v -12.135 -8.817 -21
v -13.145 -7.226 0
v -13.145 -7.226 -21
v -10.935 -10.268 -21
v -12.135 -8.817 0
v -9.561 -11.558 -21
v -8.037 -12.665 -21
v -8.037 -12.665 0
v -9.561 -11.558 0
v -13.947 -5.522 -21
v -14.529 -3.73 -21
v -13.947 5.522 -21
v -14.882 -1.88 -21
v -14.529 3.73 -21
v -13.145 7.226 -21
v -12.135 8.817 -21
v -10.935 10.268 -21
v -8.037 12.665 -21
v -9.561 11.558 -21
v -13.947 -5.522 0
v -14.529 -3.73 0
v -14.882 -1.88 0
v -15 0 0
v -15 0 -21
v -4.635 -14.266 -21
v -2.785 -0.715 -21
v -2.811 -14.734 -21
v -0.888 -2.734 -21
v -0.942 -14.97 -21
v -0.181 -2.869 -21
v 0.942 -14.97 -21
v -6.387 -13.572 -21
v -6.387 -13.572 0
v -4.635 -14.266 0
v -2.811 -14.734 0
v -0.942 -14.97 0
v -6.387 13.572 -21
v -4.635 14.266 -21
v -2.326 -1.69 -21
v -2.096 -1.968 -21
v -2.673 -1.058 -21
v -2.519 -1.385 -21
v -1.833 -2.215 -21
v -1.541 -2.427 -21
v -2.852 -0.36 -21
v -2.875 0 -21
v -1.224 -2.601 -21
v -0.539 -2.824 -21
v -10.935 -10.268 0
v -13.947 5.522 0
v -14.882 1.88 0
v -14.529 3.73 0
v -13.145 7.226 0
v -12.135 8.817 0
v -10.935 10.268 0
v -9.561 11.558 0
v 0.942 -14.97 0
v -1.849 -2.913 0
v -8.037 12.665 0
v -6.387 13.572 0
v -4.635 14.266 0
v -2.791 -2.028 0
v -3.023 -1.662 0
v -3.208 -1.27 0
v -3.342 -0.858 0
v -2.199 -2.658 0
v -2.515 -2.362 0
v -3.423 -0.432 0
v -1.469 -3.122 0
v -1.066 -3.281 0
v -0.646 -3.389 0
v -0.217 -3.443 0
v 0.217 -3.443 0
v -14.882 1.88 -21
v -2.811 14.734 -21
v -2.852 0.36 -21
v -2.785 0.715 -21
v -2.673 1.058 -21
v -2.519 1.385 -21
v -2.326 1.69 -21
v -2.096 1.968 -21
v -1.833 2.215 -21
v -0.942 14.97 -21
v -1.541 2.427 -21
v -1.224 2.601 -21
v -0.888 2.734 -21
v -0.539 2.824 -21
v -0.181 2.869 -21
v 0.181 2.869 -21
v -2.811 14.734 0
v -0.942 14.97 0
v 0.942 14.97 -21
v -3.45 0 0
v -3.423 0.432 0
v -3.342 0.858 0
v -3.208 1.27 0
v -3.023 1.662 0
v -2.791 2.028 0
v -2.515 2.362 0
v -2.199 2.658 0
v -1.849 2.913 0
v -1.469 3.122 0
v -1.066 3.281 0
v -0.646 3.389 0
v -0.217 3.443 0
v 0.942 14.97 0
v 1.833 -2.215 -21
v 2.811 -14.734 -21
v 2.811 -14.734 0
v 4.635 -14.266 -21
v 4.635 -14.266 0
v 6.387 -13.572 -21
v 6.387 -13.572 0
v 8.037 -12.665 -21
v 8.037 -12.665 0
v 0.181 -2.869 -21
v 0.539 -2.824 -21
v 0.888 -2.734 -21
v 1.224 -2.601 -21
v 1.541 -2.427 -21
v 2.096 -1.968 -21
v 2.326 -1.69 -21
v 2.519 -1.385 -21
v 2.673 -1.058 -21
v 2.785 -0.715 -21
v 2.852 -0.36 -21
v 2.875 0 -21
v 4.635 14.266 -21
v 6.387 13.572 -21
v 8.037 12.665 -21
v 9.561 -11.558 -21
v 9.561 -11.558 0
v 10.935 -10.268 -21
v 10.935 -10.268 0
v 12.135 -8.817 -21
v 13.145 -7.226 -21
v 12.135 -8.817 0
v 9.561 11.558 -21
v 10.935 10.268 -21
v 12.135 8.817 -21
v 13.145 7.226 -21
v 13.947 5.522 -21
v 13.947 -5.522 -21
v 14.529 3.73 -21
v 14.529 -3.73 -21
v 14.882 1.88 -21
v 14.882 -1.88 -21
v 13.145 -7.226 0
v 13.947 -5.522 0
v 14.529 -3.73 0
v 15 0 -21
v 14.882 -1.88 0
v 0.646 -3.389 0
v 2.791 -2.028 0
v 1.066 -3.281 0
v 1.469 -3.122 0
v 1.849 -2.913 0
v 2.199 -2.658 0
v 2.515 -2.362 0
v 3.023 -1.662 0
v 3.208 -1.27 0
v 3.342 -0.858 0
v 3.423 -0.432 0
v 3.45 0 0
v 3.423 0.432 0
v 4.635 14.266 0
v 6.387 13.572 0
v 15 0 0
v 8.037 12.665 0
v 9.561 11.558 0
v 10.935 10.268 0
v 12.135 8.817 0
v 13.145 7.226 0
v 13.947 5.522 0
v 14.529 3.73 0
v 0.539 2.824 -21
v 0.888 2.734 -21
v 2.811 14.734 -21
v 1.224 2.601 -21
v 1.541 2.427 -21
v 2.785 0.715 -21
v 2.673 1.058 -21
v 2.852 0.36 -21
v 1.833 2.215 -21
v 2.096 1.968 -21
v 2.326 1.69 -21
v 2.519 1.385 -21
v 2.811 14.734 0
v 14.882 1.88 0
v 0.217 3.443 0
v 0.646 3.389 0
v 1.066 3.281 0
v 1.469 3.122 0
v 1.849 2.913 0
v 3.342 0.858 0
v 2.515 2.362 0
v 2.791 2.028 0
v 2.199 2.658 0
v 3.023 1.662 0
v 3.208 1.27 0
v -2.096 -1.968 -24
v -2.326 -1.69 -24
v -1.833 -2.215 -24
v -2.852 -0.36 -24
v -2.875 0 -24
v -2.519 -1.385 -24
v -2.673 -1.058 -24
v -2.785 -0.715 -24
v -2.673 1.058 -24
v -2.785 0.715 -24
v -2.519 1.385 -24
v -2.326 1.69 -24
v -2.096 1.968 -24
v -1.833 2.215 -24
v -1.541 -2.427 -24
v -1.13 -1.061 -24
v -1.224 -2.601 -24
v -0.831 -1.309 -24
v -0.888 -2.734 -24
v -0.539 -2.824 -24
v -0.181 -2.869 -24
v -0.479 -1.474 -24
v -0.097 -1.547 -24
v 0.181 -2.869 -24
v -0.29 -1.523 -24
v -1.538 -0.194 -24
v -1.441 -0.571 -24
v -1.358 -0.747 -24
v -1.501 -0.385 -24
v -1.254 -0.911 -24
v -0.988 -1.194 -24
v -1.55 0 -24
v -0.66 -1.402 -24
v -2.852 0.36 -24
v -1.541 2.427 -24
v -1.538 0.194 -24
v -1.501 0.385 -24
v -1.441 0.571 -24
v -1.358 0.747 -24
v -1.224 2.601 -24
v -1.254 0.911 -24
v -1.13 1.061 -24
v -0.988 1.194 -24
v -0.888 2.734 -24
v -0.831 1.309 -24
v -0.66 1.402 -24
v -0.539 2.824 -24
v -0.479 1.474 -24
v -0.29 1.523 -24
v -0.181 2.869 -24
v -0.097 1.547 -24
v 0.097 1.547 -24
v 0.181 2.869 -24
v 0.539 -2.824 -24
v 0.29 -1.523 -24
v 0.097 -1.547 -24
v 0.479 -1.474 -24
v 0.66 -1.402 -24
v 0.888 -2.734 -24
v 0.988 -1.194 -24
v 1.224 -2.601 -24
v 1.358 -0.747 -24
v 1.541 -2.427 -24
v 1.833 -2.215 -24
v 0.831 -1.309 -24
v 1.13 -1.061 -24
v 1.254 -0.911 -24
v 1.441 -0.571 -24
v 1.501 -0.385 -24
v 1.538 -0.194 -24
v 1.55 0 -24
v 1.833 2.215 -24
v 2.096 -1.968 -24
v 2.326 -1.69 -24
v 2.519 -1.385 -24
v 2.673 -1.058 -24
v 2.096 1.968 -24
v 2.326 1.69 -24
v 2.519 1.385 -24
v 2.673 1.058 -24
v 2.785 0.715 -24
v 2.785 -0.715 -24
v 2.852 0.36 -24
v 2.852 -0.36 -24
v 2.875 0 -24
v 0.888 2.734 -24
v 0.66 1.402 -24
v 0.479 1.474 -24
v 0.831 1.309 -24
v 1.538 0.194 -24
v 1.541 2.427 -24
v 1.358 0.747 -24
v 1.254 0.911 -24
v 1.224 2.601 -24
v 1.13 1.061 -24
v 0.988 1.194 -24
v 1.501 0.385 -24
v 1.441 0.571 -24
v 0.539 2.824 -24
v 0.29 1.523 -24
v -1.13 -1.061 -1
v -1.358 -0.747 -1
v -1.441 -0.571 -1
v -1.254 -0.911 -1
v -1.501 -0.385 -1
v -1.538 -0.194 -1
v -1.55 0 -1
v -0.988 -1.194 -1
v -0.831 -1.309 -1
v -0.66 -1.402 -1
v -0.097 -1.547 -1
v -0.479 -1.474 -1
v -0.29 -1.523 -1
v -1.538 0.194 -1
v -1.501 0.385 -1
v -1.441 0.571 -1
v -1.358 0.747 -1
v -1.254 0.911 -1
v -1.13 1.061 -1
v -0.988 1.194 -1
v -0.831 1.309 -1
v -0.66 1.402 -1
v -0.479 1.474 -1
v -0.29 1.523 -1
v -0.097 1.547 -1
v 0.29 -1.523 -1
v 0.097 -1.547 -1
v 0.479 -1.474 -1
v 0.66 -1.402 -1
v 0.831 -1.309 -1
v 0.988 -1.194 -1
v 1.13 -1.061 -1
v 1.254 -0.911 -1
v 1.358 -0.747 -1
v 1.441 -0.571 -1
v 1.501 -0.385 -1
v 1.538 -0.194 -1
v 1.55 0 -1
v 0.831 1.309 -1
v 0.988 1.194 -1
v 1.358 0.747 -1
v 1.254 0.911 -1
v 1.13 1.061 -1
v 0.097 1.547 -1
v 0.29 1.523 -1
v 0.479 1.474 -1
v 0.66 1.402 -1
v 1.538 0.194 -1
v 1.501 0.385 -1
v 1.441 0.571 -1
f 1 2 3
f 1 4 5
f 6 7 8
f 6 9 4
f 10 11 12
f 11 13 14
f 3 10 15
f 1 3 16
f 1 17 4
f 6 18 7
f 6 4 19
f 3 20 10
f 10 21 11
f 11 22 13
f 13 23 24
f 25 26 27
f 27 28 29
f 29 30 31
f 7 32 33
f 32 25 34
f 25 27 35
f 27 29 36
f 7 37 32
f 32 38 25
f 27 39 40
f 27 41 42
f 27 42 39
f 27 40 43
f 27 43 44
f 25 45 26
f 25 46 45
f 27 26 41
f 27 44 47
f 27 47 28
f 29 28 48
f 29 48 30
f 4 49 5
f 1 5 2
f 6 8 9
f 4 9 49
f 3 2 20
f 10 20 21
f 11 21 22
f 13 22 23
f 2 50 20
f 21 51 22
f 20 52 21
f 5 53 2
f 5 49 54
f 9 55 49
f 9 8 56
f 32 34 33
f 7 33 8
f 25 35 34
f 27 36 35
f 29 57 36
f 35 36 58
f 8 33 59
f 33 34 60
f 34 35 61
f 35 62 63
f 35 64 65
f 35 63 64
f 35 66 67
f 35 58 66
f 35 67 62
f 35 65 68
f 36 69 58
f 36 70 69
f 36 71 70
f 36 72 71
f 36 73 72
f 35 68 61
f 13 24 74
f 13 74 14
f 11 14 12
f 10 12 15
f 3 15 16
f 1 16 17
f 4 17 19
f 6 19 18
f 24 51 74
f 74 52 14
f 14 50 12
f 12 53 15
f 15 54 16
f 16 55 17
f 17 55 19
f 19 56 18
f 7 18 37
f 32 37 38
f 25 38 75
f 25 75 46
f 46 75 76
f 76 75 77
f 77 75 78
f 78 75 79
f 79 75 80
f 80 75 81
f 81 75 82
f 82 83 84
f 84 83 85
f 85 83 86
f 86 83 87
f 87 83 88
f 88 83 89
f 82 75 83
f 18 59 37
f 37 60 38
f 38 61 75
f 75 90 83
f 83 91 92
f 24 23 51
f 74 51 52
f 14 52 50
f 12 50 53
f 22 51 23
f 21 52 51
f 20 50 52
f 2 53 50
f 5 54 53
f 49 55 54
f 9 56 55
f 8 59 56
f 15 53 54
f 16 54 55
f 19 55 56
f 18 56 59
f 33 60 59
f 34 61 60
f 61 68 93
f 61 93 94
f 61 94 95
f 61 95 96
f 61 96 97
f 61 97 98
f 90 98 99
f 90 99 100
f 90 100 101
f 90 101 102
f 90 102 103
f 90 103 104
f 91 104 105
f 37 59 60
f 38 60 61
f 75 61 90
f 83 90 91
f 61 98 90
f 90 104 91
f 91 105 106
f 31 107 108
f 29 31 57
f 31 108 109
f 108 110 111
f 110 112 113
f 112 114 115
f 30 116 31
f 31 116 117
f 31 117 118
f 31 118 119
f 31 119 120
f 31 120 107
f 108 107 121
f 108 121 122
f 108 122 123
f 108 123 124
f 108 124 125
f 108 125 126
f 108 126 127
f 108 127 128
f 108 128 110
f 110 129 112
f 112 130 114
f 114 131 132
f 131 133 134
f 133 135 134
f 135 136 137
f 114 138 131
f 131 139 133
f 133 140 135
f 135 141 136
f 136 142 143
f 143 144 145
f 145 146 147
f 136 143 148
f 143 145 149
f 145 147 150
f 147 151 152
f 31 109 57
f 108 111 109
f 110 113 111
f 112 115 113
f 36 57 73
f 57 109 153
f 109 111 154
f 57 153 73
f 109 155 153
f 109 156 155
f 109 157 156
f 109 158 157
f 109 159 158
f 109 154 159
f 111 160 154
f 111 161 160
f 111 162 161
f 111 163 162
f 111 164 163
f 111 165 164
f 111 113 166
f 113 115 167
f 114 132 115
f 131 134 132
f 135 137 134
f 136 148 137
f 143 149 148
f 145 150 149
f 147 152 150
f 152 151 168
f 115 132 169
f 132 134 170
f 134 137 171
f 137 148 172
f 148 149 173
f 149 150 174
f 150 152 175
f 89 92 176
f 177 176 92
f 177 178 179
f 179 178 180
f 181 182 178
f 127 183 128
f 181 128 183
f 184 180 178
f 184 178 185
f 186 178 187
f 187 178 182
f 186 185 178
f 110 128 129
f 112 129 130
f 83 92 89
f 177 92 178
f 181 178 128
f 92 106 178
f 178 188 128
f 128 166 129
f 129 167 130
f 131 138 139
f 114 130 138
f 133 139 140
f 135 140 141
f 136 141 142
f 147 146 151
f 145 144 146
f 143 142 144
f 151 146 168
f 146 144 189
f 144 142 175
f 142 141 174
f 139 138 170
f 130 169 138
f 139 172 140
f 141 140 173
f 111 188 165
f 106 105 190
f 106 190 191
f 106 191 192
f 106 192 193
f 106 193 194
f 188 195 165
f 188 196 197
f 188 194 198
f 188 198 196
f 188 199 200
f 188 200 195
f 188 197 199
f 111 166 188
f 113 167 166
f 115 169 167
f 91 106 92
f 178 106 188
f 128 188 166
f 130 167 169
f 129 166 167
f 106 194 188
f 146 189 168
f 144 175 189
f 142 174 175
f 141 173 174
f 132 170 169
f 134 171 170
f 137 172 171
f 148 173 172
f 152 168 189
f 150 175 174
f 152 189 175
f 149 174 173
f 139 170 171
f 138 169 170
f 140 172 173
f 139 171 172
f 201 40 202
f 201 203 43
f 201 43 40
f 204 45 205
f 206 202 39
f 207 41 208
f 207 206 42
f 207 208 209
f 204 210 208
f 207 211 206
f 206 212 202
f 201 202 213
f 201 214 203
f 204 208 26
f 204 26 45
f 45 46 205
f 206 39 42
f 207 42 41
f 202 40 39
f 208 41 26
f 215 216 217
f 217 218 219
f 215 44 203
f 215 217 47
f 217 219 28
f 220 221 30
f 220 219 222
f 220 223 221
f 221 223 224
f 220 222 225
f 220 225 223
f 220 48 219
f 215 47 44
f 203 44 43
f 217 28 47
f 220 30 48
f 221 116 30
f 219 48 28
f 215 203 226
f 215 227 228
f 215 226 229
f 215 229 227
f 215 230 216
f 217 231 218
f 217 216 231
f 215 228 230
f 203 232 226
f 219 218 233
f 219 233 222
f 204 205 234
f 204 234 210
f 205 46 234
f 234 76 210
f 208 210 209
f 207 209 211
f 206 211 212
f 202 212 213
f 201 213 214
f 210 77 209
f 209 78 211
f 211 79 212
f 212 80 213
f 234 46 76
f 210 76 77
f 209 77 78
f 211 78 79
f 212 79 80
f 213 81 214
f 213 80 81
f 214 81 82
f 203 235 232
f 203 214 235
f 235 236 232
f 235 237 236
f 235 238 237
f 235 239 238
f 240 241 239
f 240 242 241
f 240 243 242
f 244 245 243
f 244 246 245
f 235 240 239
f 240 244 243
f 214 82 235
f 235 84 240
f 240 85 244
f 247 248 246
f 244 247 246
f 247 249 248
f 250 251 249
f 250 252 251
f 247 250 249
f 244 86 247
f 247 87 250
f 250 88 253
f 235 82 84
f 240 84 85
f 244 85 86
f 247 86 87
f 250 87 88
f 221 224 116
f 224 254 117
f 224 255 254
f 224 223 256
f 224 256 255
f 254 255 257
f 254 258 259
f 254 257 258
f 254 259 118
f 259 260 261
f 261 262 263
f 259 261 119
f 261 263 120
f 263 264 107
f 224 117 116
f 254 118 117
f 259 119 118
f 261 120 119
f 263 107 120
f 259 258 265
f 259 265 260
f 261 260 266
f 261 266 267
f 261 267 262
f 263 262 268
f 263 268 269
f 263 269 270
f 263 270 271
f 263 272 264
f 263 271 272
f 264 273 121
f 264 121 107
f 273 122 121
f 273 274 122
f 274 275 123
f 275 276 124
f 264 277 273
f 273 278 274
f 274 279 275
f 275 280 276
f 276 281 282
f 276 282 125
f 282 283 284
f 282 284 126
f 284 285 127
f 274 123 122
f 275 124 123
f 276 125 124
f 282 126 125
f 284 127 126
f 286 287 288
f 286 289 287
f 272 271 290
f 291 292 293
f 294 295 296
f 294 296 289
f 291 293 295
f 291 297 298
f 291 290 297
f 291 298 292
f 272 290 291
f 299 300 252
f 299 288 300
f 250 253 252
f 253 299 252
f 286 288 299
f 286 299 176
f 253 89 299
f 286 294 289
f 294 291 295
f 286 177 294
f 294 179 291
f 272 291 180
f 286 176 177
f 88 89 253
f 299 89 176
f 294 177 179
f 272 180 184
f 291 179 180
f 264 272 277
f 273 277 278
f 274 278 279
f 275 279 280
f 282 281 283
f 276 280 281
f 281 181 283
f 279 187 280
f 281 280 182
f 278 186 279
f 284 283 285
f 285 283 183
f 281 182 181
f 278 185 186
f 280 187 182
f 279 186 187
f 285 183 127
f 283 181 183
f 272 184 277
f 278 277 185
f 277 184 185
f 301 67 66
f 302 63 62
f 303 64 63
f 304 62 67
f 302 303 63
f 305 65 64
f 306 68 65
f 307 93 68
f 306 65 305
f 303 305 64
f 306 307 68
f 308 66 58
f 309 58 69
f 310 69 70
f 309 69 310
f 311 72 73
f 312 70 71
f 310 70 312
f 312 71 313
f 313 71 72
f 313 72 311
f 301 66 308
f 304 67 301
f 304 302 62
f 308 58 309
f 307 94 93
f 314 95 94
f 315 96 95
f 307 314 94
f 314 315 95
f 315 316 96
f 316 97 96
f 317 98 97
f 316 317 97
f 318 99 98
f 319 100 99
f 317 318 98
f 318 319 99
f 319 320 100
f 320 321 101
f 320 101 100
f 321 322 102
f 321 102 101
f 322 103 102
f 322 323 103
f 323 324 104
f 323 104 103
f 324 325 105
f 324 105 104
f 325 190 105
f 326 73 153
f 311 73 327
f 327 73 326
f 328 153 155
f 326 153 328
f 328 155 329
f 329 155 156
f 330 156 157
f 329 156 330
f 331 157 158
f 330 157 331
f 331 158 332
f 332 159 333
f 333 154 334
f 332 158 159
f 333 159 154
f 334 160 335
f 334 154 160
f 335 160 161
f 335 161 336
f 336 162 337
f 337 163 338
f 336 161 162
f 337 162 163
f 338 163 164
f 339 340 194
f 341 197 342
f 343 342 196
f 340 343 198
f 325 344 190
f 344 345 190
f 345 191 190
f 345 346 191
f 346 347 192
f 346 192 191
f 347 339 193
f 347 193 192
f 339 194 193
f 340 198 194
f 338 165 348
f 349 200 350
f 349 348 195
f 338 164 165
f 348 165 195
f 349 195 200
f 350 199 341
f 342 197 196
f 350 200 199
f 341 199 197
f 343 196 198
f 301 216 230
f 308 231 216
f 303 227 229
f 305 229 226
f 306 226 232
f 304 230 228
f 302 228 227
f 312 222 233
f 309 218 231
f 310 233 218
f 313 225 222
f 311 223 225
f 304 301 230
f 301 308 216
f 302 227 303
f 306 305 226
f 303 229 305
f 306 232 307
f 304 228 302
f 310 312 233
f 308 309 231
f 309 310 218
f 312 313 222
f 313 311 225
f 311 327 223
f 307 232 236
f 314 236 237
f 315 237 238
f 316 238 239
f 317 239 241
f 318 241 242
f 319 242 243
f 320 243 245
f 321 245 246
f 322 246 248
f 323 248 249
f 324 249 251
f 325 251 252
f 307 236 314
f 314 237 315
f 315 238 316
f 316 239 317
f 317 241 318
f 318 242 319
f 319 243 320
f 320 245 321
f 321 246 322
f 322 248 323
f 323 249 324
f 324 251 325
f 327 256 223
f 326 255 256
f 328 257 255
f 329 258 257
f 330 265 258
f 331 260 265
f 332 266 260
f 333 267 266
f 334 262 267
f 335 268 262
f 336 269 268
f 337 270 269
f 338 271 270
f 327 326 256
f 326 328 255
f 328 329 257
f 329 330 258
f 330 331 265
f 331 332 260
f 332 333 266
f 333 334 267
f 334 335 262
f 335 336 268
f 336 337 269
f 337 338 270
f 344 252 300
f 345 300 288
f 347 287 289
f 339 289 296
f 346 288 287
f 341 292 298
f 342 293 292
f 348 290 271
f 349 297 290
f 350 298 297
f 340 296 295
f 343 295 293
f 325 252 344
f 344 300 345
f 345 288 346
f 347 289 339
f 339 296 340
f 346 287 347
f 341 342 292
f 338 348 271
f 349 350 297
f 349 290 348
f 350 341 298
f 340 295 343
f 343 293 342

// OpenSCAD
$fn = 50;

difference() {
	union() {
		translate(v = [0, 0, -21.0]) {
			cylinder(h = 21, r = 15.0);
		}
		#translate(v = [0, 0, -24.0]) {
			cylinder(h = 24, r = 2.875);
		}
	}
	union() {
		translate(v = [0, 0, 0]) {
			rotate(a = [0, 0, 0]) {
				difference() {
					union() {
						translate(v = [0, 0, -24.0]) {
							cylinder(h = 24, r = 1.25);
						}
						translate(v = [0, 0, -1.0]) {
							cylinder(h = 1.0, r1 = 1.55, r2 = 3.45);
						}
						translate(v = [0, 0, -24.0]) {
							cylinder(h = 24, r = 1.55);
						}
						translate(v = [0, 0, -24.0]) {
							cylinder(h = 24, r = 1.25);
						}
					}
					union();
				}
			}
		}
	}
}
